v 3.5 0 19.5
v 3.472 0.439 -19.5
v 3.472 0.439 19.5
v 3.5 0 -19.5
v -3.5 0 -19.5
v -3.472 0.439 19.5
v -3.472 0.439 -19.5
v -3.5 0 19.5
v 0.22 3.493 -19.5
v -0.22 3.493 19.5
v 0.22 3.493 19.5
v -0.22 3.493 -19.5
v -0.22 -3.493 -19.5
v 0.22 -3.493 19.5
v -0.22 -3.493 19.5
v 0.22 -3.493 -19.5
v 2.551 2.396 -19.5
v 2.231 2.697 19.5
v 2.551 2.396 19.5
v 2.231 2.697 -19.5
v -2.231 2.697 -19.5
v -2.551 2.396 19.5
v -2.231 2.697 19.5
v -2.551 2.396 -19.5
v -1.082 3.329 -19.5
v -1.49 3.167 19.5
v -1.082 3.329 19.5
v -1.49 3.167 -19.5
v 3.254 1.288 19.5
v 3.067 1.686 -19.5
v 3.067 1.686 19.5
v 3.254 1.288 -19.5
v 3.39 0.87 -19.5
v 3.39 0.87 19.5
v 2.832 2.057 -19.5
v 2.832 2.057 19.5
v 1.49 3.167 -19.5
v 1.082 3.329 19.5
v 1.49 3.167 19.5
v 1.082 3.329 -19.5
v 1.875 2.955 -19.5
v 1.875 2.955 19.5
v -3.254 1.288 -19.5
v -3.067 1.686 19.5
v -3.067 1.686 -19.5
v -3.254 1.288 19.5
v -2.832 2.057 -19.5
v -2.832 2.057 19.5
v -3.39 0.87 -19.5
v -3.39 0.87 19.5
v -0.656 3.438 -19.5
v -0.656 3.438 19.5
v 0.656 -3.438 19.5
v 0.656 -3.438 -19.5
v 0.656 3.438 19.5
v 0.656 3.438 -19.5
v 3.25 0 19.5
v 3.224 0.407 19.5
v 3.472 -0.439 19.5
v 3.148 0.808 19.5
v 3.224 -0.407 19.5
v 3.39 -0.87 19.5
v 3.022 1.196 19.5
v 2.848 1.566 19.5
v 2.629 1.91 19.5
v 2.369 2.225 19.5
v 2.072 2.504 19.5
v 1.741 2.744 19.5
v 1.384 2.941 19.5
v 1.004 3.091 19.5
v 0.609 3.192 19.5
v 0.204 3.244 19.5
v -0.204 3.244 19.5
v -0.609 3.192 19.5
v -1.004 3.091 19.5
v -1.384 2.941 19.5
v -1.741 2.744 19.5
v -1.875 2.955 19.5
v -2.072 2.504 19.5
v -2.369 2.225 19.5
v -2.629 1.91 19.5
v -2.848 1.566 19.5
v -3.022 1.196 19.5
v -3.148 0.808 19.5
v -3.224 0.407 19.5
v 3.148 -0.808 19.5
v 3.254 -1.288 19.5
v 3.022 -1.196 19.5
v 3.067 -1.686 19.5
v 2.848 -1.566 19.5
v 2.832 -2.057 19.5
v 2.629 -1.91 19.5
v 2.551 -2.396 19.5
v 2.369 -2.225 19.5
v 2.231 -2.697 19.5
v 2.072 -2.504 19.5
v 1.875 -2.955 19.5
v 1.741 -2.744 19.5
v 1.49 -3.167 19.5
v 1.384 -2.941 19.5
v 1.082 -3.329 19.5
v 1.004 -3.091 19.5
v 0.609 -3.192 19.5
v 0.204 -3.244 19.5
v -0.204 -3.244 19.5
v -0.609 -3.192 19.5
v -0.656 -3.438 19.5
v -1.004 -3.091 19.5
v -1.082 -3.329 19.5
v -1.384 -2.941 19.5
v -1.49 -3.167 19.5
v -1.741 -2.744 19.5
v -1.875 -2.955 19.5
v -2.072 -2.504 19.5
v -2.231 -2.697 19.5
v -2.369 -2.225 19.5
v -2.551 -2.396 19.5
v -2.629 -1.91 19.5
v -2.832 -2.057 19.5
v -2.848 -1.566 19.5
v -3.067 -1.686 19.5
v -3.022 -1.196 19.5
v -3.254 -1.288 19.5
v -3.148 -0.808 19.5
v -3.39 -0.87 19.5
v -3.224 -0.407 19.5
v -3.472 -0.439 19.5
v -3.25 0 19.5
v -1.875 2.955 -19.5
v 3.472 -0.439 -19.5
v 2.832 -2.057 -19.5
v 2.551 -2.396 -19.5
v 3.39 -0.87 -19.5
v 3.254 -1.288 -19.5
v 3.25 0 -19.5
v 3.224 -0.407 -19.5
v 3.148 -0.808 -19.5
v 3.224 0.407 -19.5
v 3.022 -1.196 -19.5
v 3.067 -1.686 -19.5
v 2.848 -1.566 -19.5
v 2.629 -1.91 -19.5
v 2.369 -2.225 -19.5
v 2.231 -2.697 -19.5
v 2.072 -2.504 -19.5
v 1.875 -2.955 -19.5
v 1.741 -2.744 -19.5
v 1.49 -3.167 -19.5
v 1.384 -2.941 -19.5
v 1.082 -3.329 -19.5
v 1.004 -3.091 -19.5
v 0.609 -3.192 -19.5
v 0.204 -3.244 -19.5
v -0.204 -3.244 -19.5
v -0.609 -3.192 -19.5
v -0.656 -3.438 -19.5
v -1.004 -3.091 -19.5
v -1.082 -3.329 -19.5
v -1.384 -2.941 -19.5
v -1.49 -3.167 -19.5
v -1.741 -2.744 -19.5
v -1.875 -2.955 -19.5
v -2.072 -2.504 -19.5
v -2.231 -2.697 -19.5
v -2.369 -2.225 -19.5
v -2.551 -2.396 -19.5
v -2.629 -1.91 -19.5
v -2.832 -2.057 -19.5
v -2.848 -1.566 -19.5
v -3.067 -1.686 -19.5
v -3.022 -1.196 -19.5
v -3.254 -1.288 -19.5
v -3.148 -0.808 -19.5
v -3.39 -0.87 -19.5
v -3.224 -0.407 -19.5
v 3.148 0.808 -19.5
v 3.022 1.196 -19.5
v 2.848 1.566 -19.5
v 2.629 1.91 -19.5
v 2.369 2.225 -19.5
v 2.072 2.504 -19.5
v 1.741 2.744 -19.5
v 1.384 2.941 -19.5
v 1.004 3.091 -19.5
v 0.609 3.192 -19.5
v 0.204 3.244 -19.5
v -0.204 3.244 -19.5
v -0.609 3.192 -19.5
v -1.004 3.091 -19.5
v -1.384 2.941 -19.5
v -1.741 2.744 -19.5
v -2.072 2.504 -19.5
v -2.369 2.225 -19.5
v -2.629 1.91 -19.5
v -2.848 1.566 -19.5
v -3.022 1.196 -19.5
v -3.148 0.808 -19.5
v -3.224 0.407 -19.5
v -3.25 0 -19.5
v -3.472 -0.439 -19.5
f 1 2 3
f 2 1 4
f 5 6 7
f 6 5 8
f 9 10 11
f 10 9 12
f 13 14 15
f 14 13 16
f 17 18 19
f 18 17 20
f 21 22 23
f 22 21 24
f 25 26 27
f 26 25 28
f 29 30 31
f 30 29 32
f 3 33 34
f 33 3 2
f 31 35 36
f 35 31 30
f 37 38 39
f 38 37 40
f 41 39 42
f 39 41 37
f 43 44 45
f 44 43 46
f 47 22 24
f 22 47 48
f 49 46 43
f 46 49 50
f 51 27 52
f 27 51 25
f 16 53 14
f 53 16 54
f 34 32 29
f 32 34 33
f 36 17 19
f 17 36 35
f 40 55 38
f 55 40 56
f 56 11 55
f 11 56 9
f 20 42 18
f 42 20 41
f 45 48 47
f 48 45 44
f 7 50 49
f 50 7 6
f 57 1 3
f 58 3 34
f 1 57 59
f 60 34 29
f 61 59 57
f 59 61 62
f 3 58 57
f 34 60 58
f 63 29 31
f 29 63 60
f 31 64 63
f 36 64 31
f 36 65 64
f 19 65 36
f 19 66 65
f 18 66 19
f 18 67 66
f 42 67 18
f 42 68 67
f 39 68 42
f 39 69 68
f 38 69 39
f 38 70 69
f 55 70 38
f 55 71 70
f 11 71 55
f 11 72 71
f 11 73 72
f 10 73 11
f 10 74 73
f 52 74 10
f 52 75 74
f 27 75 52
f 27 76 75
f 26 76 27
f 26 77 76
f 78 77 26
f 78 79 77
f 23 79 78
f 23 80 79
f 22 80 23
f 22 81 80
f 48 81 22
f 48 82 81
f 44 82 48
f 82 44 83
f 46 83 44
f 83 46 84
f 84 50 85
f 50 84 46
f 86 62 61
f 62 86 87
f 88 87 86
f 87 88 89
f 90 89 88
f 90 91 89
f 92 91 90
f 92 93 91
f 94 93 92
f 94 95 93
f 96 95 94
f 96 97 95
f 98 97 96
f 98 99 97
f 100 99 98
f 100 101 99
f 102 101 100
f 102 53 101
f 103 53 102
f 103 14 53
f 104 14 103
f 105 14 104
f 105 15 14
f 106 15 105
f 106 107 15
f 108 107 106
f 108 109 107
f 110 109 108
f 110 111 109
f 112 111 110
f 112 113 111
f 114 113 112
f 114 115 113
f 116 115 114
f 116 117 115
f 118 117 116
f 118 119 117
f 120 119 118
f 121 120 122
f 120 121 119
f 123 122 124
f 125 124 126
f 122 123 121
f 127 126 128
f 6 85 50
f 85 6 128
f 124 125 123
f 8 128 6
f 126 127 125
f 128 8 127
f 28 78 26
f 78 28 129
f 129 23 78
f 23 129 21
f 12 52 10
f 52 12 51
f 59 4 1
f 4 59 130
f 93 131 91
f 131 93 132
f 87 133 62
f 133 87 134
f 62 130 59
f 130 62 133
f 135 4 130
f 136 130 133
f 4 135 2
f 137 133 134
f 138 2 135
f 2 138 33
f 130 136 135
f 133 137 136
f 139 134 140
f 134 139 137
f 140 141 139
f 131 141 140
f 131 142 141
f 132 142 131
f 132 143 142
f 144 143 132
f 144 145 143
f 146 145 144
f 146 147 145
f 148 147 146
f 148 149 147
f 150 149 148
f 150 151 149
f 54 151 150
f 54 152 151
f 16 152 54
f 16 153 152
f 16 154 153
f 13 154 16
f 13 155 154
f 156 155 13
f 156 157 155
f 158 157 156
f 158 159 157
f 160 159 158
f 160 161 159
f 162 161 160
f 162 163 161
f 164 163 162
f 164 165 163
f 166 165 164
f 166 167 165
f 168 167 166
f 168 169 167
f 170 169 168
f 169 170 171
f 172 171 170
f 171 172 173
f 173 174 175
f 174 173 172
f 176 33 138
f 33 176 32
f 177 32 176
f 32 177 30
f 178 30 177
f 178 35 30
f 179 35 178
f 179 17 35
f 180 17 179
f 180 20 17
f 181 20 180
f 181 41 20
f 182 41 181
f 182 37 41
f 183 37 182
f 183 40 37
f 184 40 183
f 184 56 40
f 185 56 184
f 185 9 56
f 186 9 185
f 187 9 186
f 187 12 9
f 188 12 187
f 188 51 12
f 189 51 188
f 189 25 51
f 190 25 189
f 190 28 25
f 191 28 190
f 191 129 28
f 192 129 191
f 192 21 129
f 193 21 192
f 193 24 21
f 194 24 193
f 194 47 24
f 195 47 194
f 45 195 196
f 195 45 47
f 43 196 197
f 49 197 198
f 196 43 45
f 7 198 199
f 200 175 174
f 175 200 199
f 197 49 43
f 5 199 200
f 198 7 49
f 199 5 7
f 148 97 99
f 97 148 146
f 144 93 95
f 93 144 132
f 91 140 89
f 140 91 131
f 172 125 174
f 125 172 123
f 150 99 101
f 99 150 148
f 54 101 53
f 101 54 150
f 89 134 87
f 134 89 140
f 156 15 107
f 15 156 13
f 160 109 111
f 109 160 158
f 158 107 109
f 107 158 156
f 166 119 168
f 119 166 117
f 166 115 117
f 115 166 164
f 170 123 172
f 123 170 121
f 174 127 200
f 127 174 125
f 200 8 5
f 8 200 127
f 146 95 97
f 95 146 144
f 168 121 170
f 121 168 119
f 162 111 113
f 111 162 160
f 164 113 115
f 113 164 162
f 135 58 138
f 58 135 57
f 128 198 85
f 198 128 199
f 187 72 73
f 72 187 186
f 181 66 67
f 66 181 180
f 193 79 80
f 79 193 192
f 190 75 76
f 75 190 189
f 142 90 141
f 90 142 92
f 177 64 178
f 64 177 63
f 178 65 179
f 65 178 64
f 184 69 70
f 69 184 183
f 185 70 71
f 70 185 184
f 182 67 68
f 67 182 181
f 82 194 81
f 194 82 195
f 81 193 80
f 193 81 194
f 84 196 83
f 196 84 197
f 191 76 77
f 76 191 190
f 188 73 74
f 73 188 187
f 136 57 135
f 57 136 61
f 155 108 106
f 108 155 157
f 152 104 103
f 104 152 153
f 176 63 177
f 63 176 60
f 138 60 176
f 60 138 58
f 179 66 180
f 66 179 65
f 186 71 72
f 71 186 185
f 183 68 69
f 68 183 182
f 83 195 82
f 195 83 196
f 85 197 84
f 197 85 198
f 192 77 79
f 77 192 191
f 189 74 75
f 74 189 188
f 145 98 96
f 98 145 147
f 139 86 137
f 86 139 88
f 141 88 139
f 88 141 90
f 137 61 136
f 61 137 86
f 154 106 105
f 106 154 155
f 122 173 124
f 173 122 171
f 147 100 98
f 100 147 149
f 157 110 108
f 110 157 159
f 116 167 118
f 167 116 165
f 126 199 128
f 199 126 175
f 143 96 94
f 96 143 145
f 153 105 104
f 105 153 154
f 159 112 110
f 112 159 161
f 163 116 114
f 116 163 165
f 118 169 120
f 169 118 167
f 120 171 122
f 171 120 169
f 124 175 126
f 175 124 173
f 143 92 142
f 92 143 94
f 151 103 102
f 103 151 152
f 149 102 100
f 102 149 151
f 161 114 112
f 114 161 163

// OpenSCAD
$fn = 50;


difference() {
	union() {
		translate(v = [0, 0, -19.5000000000]) {
			cylinder(h = 39, r = 3.5000000000);
		}
	}
	union() {
		translate(v = [0, 0, -100.0000000000]) {
			cylinder(h = 200, r = 3.2500000000);
		}
	}
}
